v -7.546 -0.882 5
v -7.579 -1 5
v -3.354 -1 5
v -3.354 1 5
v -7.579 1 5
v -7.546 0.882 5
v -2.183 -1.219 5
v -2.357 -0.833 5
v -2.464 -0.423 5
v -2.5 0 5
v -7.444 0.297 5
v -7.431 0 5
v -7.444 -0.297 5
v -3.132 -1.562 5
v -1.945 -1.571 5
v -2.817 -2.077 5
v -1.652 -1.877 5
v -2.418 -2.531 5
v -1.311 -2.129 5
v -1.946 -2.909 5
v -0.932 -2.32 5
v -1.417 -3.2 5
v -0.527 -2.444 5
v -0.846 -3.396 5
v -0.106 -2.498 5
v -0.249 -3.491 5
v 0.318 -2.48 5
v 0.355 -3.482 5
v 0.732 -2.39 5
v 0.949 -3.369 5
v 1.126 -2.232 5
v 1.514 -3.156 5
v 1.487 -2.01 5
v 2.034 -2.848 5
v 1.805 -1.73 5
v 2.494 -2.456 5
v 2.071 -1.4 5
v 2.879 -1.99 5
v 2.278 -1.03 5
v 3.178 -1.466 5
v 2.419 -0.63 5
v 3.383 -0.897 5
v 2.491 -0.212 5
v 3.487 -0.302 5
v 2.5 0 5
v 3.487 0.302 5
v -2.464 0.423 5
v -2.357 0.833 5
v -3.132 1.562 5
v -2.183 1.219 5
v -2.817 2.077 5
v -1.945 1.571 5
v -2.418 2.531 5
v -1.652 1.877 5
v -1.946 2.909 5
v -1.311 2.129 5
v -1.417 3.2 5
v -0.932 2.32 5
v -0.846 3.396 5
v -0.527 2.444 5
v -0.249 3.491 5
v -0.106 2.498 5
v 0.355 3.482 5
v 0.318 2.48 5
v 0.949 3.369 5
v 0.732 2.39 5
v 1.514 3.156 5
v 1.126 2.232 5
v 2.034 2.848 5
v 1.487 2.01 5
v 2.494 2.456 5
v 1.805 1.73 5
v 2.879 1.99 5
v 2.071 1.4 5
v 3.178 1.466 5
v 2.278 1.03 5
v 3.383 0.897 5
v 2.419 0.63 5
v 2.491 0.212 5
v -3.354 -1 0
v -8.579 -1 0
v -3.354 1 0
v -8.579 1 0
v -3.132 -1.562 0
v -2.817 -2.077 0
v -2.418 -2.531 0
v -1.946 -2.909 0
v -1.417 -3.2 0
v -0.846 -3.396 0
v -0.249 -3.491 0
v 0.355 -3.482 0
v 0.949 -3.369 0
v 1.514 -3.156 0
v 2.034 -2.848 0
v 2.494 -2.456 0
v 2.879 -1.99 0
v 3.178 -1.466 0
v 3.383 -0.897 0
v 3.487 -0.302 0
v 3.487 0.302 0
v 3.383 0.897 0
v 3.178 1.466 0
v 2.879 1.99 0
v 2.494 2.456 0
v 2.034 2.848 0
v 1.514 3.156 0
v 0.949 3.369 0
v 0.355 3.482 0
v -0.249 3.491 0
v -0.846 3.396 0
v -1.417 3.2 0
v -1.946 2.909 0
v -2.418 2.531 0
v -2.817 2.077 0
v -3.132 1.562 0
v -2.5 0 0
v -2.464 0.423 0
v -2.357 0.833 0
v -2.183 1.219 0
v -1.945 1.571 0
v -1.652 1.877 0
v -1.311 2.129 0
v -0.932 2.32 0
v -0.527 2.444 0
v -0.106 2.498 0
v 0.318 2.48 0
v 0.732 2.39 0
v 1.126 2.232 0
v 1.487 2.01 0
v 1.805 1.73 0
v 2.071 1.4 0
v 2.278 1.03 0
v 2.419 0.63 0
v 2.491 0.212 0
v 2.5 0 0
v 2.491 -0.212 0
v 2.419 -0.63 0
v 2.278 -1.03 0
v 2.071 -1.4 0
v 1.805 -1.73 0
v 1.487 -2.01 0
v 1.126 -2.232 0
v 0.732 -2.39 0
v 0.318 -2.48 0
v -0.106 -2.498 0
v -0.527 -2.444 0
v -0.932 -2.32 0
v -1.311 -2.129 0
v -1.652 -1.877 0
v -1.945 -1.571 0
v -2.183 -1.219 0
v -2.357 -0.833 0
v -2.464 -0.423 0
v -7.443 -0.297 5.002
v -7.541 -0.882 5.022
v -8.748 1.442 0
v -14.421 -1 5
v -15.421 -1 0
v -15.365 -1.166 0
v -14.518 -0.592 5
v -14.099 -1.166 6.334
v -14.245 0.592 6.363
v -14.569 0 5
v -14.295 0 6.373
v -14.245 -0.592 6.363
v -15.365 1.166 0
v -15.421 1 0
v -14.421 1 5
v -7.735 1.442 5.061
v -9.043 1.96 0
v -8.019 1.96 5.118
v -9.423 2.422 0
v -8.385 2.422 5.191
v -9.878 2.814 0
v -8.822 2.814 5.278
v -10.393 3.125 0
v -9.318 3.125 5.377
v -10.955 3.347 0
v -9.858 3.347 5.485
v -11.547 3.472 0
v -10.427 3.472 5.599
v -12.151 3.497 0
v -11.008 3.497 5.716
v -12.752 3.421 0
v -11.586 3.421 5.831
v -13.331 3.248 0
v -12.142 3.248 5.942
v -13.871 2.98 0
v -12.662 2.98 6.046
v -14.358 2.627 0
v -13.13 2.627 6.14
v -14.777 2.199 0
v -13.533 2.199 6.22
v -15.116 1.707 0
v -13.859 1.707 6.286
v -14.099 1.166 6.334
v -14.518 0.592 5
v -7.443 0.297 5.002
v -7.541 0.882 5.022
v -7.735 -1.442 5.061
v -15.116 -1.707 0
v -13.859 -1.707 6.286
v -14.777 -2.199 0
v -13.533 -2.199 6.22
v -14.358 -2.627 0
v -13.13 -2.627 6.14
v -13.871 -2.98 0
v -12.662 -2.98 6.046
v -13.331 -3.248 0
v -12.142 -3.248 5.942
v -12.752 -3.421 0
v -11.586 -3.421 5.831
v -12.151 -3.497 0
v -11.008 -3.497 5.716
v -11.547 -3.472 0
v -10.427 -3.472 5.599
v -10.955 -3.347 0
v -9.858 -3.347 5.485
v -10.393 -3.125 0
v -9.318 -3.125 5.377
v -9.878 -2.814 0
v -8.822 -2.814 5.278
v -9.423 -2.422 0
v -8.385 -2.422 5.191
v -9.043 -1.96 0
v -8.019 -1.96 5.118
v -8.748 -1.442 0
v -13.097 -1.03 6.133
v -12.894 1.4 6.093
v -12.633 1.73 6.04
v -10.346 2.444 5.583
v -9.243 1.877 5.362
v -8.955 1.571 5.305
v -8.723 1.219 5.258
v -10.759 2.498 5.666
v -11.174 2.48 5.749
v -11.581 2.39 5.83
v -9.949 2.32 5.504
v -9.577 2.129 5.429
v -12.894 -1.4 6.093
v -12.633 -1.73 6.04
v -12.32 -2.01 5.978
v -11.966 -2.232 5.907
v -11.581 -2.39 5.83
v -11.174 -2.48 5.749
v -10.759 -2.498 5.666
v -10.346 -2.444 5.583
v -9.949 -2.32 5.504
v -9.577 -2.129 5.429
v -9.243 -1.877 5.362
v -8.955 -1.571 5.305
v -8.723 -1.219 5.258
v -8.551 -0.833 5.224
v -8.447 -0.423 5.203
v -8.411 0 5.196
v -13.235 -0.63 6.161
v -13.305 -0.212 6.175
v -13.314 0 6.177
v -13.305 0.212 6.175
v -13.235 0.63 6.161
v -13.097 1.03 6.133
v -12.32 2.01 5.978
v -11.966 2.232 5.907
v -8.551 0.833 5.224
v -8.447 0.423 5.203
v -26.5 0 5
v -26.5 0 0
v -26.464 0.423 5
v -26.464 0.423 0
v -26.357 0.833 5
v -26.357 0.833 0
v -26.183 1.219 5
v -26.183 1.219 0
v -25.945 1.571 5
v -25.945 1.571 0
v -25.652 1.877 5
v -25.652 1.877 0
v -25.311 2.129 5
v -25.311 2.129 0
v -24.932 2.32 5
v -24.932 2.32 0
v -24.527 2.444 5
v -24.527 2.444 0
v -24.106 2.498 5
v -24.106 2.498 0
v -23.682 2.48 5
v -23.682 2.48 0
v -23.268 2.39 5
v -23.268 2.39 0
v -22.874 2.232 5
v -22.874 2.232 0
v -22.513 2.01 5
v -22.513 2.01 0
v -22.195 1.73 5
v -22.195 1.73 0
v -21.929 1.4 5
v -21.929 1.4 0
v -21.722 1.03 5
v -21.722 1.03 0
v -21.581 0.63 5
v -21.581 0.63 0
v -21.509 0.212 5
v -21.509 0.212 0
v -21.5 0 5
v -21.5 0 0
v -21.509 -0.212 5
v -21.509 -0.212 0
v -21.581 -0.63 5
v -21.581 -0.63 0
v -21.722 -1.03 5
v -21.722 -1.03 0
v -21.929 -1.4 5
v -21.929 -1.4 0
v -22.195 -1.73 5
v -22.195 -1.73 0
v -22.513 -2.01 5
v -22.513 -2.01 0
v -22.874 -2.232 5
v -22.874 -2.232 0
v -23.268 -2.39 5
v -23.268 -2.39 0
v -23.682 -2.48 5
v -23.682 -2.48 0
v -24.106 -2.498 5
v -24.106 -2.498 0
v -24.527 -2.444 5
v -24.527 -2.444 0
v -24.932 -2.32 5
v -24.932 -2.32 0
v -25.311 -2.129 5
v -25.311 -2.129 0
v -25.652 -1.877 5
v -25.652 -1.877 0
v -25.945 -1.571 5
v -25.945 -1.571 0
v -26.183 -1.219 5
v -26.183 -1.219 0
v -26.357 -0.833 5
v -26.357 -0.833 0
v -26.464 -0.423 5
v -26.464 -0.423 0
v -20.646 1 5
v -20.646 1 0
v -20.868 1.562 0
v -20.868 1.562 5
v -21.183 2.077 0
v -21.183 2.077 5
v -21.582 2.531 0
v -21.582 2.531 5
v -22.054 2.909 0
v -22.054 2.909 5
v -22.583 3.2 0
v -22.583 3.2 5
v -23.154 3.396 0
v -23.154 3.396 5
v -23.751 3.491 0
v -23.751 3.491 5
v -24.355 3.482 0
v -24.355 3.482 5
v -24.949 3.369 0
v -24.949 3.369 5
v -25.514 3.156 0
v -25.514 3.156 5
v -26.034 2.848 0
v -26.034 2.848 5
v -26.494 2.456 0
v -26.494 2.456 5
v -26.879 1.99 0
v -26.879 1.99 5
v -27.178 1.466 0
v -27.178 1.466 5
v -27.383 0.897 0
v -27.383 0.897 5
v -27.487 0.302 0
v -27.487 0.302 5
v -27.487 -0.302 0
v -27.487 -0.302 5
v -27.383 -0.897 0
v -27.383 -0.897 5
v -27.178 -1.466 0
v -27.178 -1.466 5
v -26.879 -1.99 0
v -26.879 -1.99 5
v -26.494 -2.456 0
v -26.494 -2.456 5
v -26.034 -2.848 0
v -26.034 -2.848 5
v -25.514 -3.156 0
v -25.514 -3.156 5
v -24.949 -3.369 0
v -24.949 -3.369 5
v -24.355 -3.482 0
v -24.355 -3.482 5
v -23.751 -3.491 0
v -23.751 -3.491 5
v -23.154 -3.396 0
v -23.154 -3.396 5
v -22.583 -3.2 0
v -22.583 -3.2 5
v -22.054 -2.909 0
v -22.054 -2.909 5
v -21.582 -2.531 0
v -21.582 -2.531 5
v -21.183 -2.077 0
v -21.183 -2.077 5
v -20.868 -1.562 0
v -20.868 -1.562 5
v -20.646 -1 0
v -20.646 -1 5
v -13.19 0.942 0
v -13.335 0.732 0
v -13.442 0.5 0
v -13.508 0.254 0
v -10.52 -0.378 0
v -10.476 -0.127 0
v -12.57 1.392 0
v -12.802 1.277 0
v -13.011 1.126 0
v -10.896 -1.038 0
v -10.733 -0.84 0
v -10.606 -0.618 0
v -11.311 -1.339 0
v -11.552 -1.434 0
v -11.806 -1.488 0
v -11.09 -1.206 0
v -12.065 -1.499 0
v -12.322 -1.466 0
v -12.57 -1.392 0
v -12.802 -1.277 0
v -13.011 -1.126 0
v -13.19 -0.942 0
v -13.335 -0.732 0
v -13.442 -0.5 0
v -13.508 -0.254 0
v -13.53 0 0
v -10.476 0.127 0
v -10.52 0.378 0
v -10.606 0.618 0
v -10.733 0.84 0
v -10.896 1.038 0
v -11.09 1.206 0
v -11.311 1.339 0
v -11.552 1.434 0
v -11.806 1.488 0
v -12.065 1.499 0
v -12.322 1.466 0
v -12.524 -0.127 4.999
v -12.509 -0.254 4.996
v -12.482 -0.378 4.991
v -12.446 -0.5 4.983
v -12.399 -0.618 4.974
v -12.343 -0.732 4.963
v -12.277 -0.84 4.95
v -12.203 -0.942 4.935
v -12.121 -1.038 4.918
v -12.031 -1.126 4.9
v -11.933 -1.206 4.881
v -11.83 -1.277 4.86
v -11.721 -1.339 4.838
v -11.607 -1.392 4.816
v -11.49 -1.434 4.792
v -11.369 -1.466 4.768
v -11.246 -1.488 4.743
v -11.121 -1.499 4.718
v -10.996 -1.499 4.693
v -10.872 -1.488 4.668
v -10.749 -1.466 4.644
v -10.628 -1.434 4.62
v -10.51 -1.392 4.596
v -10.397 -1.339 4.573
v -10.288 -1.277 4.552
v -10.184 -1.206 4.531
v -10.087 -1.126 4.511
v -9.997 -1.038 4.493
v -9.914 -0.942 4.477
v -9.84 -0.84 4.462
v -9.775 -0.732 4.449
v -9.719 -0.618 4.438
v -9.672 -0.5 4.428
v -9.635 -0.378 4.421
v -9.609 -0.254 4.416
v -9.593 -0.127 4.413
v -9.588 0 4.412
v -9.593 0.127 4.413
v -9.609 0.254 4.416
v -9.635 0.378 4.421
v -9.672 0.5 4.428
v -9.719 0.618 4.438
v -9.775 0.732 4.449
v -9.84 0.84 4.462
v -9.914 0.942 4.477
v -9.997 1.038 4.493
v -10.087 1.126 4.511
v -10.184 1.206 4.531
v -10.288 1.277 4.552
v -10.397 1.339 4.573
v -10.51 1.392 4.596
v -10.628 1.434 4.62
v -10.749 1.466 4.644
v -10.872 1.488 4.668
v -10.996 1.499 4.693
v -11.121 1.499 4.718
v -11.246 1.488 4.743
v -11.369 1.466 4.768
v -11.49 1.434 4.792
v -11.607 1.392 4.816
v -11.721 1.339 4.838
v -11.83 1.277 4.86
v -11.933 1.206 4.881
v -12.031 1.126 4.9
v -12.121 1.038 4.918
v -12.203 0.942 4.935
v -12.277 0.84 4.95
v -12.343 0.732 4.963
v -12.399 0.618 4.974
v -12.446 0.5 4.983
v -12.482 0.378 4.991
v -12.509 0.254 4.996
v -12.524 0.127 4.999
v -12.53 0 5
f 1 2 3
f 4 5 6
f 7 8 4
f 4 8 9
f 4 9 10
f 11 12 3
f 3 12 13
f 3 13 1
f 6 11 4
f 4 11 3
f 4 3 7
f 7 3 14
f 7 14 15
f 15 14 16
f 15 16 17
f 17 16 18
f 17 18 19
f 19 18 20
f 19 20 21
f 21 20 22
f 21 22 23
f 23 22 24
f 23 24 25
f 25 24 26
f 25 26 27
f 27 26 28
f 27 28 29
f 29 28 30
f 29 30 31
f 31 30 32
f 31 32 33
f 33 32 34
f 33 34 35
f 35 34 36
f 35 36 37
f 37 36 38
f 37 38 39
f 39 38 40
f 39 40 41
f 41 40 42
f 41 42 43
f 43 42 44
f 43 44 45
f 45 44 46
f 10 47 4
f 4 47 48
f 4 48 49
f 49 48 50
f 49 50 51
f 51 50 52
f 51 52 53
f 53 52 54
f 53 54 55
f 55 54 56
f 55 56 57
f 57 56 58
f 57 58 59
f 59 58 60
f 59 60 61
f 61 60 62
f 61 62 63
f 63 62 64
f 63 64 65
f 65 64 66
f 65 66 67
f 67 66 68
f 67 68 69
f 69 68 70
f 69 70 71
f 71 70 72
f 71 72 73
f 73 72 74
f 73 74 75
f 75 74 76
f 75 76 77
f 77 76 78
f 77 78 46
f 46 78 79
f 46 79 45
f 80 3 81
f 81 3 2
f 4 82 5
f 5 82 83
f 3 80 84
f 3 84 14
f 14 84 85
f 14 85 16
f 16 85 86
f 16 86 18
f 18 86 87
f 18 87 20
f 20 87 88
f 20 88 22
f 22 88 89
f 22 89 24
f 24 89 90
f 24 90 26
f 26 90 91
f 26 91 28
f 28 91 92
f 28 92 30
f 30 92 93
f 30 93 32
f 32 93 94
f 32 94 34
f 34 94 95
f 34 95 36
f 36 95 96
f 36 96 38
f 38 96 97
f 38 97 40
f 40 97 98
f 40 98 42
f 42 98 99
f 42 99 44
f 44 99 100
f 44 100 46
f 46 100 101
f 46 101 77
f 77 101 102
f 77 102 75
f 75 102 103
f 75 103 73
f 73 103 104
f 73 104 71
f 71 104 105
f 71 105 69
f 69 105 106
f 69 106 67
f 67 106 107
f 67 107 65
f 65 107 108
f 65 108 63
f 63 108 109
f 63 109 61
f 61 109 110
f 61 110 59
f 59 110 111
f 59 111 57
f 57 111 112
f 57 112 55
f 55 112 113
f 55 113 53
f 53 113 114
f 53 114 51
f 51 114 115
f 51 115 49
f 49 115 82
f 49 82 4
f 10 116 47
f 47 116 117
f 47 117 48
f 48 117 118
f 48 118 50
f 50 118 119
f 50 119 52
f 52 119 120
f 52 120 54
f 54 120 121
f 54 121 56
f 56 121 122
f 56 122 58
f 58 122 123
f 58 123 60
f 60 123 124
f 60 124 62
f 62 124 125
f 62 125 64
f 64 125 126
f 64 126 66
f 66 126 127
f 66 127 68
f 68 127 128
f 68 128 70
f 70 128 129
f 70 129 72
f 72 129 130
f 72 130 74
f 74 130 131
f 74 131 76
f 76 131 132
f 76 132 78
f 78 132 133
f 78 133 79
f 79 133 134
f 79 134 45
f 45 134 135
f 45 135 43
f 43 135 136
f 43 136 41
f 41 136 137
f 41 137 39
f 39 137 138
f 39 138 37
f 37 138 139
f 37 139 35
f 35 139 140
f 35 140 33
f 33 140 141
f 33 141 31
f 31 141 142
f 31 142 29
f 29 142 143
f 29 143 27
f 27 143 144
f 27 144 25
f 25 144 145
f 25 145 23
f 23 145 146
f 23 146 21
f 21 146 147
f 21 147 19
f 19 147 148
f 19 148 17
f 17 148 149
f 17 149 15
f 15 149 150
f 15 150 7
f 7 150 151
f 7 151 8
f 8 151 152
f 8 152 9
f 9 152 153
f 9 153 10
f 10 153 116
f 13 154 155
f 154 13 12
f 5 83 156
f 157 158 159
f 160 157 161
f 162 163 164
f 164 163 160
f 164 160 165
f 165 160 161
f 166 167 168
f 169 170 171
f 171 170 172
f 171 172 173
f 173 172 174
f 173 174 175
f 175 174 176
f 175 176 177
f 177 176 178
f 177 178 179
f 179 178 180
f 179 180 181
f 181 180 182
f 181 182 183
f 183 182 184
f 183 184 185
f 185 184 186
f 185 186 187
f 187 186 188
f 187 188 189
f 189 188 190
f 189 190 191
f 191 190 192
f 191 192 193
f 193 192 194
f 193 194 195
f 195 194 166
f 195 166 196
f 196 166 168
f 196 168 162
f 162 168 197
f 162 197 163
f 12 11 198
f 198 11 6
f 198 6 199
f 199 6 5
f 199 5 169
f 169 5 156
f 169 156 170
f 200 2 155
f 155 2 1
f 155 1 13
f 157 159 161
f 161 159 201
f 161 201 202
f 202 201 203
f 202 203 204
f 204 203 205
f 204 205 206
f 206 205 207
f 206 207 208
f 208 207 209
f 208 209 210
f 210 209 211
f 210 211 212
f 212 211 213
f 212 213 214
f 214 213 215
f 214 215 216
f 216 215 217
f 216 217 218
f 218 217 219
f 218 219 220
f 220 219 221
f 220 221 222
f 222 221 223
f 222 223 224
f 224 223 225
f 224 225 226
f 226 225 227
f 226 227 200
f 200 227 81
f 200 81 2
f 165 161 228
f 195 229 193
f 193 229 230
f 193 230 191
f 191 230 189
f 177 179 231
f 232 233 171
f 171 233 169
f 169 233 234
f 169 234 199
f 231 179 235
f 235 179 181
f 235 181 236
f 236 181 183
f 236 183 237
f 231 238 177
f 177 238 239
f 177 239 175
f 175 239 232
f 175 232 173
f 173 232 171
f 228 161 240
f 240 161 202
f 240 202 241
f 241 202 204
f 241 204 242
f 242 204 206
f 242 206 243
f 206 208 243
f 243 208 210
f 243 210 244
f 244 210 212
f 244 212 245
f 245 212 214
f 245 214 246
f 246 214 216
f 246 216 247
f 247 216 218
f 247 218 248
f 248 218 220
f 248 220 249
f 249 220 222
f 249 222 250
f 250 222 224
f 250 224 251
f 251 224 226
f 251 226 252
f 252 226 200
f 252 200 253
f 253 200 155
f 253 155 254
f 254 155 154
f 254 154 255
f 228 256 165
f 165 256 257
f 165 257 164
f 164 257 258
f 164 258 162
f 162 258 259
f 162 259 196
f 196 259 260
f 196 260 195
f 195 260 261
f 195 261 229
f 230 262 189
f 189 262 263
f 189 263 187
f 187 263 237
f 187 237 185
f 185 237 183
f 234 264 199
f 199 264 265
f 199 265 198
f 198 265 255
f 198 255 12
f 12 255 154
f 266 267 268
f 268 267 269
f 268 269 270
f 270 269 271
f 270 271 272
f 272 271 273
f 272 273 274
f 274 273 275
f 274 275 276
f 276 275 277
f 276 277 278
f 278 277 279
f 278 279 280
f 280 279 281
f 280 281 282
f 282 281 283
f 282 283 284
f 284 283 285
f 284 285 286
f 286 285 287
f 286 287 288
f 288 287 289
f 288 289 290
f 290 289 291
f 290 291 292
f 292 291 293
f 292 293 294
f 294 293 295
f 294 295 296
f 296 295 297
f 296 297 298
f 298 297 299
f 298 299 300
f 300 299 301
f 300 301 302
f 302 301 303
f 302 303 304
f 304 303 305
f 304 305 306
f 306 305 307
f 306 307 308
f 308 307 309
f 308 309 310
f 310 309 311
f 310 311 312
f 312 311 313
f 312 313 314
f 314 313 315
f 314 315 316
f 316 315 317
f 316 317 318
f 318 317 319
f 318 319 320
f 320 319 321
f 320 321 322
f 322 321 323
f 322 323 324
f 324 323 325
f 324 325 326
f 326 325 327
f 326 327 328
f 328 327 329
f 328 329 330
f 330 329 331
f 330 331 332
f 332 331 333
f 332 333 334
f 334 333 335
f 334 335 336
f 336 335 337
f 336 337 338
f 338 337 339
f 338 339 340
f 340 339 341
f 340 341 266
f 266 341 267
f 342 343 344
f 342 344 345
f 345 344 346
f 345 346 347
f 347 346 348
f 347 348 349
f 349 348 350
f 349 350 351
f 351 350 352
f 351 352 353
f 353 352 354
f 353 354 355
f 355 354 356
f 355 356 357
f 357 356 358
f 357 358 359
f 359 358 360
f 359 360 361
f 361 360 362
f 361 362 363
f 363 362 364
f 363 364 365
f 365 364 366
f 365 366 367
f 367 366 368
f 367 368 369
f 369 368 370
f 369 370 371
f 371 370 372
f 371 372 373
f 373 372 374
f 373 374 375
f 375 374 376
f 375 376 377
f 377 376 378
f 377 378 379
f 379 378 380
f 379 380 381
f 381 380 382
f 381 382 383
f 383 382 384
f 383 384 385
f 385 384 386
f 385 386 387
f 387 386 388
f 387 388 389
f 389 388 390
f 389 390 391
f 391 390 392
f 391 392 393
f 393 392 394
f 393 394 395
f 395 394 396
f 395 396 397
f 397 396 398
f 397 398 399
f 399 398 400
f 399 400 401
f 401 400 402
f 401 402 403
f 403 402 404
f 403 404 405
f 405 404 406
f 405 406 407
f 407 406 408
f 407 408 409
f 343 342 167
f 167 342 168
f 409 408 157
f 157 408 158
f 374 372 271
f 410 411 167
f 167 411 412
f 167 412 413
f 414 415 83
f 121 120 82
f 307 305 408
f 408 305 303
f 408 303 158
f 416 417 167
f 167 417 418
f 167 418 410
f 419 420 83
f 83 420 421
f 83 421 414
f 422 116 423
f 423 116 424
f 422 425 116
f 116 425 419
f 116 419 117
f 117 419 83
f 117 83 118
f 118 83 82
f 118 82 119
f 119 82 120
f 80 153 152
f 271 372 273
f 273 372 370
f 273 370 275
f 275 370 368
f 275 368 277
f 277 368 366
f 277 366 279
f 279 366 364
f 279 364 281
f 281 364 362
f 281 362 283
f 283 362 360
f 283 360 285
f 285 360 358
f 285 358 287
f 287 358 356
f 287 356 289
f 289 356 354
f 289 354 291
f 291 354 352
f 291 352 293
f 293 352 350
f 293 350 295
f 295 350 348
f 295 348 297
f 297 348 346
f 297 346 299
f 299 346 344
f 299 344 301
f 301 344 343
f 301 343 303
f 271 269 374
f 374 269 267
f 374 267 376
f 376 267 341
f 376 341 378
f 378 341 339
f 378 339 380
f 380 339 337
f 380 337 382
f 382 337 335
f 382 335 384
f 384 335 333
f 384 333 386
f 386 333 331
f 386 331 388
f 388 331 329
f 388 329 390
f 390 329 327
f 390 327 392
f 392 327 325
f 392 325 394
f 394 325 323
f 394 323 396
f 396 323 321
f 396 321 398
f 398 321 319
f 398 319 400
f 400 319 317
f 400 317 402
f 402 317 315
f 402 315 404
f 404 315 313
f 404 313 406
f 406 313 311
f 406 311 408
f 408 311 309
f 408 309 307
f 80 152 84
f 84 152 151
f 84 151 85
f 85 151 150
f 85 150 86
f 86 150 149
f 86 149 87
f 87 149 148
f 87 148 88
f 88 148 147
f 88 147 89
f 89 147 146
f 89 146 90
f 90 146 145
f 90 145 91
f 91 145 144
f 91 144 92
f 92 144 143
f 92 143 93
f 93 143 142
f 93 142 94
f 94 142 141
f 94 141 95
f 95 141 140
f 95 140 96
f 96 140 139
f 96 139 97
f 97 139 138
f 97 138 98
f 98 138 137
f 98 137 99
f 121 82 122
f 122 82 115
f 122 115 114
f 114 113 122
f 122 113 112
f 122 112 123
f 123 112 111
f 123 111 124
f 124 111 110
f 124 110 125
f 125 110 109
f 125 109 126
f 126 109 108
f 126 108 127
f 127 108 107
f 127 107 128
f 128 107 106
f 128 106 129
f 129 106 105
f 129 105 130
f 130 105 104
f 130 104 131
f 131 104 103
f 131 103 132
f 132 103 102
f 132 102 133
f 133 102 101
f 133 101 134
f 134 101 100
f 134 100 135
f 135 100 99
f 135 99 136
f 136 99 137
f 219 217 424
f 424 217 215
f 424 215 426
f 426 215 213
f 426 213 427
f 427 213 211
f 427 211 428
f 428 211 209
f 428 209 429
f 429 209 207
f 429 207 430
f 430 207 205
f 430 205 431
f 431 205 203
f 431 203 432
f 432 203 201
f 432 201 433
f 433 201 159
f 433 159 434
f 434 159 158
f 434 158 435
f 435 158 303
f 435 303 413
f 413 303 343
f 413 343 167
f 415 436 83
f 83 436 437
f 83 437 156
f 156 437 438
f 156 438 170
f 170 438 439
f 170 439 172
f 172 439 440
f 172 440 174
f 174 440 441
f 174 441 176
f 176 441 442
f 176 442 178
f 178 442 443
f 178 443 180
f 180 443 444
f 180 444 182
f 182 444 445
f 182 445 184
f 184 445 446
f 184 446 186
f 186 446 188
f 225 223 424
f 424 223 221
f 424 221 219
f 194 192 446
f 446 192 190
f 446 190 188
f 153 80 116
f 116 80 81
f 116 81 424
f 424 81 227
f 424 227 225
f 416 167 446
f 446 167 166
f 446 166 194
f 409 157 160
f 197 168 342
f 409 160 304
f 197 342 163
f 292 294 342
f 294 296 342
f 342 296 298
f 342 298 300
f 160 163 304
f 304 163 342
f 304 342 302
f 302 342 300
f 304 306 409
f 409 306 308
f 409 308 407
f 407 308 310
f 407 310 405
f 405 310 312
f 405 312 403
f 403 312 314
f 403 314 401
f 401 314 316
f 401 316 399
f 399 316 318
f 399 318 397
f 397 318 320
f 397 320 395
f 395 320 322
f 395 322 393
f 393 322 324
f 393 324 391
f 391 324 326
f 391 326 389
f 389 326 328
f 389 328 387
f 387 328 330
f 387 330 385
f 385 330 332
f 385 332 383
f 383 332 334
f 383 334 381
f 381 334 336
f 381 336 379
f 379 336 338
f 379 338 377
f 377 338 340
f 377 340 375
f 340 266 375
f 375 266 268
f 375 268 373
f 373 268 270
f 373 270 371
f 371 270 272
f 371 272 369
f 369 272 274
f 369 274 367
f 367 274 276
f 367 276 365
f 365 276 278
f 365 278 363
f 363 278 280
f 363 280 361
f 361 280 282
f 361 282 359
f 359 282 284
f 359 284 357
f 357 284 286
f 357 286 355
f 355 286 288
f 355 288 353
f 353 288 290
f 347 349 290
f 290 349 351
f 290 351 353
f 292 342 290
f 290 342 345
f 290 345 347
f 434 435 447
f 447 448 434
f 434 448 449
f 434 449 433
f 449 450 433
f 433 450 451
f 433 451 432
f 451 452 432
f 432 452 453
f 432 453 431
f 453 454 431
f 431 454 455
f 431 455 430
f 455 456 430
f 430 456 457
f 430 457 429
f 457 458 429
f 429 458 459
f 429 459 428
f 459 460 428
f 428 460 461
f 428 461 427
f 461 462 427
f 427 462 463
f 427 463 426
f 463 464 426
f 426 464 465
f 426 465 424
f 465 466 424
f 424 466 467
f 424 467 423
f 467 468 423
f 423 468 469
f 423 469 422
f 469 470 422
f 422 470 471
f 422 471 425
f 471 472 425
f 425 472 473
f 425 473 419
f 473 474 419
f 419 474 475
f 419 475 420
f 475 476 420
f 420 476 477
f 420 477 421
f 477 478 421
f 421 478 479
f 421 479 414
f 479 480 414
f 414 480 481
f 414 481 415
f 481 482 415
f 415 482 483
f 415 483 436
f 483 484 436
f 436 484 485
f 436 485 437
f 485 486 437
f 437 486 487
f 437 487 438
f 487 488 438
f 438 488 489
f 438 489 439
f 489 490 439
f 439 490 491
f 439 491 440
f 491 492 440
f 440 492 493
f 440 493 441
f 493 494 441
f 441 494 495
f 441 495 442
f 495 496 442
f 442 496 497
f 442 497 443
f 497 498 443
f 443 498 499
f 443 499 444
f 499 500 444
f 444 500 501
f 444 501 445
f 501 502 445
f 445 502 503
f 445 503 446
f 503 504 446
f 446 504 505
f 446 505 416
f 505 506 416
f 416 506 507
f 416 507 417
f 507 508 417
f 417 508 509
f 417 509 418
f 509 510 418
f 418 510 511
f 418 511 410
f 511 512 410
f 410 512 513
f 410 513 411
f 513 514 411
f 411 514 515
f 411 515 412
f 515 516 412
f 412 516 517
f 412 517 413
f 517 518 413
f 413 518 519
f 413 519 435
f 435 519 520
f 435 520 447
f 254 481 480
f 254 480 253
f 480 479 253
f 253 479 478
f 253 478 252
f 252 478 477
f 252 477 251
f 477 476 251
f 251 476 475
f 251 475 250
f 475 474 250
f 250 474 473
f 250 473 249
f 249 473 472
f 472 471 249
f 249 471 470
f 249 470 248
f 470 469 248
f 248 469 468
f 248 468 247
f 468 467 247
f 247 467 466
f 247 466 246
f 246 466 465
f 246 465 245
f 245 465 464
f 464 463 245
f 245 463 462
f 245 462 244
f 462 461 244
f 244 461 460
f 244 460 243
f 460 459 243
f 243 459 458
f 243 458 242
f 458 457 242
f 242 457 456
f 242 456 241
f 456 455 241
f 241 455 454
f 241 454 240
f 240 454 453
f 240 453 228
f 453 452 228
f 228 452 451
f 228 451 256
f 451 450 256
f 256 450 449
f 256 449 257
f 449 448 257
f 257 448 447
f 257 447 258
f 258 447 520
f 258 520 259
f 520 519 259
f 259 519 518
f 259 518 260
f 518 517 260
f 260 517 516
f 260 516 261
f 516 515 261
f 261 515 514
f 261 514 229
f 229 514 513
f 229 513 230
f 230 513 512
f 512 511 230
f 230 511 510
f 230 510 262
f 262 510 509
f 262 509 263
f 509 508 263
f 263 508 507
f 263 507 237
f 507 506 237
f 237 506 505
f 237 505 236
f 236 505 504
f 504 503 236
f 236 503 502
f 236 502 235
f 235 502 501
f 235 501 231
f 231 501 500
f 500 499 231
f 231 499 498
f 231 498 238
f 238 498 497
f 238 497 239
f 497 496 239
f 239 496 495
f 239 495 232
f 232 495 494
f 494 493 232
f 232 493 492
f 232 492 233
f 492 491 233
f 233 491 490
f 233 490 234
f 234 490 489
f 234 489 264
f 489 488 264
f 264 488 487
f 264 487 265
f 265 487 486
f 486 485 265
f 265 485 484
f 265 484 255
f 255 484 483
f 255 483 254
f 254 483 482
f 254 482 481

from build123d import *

# Parameters (mm, degrees)
SKETCH1_R               = 2.5
BOSS_EXTRUDE1_DEPTH     = 5
SKETCH4_R               = 1.5
CUT_EXTRUDE1_DEPTH      = 10.988857319
SKETCH5_W               = 10.682767576
SKETCH5_H               = 3.673973587
CUT_EXTRUDE2_DEPTH      = 4.5
CUT_EXTRUDE2_DEPTH_BACK = 4.5
CHAMFER1_SIZE           = 1


with BuildPart() as part:
    # Sketch1 → Boss-Extrude1 (new body)
    with BuildSketch(Plane.XY):
        with BuildLine():
            Line((-20.645898034, 1), (-3.354101966, 1))
            ThreePointArc((-3.354101966, 1), (3.5, 0), (-3.354101966, -1))
            Line((-3.354101966, -1), (-20.645898034, -1))
            ThreePointArc((-20.645898034, -1), (-27.5, 0), (-20.645898034, 1))
        make_face()
        Circle(SKETCH1_R, mode=Mode.SUBTRACT)
        with Locations((-24, 0)):
            Circle(SKETCH1_R, mode=Mode.SUBTRACT)
    extrude(amount=BOSS_EXTRUDE1_DEPTH)

    # Sketch3 → Revolve1 (revolve)
    with BuildSketch(Plane(origin=(0, 0, 0), x_dir=(1, 0, 0), z_dir=(0, 1, 0))):
        Polygon((-8.70524893, 1.372812946), (-7.43068634, -5), (-10.862718705, -5.686406473), (-12.137281295, 0.686406473), align=None)
    revolve(axis=Axis((-12.027607656, 0, -0.138038281), (0.196116135, 0, 0.980580676)))

    # Sketch4 → Cut-Extrude1 (cut, through all)
    with BuildSketch(Plane(origin=(-0.598819756, 0, -2.994098781), x_dir=(-0.980580676, 0, 0.196116135), z_dir=(-0.196116135, 0, -0.980580676))):
        with Locations((11.766968108, 0)):
            Circle(SKETCH4_R)
    extrude(amount=-CUT_EXTRUDE1_DEPTH, mode=Mode.SUBTRACT)

    # Sketch5 → Cut-Extrude2 (cut, two sides)
    with BuildSketch(Plane(origin=(0, 0, 0), x_dir=(1, 0, 0), z_dir=(0, 1, 0))) as cut_extrude2_sk:
        with Locations((-12.153708886, 1.836986794)):
            Rectangle(SKETCH5_W, SKETCH5_H)
    extrude(amount=CUT_EXTRUDE2_DEPTH, mode=Mode.SUBTRACT)
    extrude(cut_extrude2_sk.sketch, amount=-CUT_EXTRUDE2_DEPTH_BACK, mode=Mode.SUBTRACT)

    # Chamfer1
    chamfer1_edges = [part.edges().sort_by_distance(p)[0] for p in [
        (-9.391847692, 0, 5.39223227),
    ]]
    chamfer(chamfer1_edges, length=CHAMFER1_SIZE)


solid = part.part
